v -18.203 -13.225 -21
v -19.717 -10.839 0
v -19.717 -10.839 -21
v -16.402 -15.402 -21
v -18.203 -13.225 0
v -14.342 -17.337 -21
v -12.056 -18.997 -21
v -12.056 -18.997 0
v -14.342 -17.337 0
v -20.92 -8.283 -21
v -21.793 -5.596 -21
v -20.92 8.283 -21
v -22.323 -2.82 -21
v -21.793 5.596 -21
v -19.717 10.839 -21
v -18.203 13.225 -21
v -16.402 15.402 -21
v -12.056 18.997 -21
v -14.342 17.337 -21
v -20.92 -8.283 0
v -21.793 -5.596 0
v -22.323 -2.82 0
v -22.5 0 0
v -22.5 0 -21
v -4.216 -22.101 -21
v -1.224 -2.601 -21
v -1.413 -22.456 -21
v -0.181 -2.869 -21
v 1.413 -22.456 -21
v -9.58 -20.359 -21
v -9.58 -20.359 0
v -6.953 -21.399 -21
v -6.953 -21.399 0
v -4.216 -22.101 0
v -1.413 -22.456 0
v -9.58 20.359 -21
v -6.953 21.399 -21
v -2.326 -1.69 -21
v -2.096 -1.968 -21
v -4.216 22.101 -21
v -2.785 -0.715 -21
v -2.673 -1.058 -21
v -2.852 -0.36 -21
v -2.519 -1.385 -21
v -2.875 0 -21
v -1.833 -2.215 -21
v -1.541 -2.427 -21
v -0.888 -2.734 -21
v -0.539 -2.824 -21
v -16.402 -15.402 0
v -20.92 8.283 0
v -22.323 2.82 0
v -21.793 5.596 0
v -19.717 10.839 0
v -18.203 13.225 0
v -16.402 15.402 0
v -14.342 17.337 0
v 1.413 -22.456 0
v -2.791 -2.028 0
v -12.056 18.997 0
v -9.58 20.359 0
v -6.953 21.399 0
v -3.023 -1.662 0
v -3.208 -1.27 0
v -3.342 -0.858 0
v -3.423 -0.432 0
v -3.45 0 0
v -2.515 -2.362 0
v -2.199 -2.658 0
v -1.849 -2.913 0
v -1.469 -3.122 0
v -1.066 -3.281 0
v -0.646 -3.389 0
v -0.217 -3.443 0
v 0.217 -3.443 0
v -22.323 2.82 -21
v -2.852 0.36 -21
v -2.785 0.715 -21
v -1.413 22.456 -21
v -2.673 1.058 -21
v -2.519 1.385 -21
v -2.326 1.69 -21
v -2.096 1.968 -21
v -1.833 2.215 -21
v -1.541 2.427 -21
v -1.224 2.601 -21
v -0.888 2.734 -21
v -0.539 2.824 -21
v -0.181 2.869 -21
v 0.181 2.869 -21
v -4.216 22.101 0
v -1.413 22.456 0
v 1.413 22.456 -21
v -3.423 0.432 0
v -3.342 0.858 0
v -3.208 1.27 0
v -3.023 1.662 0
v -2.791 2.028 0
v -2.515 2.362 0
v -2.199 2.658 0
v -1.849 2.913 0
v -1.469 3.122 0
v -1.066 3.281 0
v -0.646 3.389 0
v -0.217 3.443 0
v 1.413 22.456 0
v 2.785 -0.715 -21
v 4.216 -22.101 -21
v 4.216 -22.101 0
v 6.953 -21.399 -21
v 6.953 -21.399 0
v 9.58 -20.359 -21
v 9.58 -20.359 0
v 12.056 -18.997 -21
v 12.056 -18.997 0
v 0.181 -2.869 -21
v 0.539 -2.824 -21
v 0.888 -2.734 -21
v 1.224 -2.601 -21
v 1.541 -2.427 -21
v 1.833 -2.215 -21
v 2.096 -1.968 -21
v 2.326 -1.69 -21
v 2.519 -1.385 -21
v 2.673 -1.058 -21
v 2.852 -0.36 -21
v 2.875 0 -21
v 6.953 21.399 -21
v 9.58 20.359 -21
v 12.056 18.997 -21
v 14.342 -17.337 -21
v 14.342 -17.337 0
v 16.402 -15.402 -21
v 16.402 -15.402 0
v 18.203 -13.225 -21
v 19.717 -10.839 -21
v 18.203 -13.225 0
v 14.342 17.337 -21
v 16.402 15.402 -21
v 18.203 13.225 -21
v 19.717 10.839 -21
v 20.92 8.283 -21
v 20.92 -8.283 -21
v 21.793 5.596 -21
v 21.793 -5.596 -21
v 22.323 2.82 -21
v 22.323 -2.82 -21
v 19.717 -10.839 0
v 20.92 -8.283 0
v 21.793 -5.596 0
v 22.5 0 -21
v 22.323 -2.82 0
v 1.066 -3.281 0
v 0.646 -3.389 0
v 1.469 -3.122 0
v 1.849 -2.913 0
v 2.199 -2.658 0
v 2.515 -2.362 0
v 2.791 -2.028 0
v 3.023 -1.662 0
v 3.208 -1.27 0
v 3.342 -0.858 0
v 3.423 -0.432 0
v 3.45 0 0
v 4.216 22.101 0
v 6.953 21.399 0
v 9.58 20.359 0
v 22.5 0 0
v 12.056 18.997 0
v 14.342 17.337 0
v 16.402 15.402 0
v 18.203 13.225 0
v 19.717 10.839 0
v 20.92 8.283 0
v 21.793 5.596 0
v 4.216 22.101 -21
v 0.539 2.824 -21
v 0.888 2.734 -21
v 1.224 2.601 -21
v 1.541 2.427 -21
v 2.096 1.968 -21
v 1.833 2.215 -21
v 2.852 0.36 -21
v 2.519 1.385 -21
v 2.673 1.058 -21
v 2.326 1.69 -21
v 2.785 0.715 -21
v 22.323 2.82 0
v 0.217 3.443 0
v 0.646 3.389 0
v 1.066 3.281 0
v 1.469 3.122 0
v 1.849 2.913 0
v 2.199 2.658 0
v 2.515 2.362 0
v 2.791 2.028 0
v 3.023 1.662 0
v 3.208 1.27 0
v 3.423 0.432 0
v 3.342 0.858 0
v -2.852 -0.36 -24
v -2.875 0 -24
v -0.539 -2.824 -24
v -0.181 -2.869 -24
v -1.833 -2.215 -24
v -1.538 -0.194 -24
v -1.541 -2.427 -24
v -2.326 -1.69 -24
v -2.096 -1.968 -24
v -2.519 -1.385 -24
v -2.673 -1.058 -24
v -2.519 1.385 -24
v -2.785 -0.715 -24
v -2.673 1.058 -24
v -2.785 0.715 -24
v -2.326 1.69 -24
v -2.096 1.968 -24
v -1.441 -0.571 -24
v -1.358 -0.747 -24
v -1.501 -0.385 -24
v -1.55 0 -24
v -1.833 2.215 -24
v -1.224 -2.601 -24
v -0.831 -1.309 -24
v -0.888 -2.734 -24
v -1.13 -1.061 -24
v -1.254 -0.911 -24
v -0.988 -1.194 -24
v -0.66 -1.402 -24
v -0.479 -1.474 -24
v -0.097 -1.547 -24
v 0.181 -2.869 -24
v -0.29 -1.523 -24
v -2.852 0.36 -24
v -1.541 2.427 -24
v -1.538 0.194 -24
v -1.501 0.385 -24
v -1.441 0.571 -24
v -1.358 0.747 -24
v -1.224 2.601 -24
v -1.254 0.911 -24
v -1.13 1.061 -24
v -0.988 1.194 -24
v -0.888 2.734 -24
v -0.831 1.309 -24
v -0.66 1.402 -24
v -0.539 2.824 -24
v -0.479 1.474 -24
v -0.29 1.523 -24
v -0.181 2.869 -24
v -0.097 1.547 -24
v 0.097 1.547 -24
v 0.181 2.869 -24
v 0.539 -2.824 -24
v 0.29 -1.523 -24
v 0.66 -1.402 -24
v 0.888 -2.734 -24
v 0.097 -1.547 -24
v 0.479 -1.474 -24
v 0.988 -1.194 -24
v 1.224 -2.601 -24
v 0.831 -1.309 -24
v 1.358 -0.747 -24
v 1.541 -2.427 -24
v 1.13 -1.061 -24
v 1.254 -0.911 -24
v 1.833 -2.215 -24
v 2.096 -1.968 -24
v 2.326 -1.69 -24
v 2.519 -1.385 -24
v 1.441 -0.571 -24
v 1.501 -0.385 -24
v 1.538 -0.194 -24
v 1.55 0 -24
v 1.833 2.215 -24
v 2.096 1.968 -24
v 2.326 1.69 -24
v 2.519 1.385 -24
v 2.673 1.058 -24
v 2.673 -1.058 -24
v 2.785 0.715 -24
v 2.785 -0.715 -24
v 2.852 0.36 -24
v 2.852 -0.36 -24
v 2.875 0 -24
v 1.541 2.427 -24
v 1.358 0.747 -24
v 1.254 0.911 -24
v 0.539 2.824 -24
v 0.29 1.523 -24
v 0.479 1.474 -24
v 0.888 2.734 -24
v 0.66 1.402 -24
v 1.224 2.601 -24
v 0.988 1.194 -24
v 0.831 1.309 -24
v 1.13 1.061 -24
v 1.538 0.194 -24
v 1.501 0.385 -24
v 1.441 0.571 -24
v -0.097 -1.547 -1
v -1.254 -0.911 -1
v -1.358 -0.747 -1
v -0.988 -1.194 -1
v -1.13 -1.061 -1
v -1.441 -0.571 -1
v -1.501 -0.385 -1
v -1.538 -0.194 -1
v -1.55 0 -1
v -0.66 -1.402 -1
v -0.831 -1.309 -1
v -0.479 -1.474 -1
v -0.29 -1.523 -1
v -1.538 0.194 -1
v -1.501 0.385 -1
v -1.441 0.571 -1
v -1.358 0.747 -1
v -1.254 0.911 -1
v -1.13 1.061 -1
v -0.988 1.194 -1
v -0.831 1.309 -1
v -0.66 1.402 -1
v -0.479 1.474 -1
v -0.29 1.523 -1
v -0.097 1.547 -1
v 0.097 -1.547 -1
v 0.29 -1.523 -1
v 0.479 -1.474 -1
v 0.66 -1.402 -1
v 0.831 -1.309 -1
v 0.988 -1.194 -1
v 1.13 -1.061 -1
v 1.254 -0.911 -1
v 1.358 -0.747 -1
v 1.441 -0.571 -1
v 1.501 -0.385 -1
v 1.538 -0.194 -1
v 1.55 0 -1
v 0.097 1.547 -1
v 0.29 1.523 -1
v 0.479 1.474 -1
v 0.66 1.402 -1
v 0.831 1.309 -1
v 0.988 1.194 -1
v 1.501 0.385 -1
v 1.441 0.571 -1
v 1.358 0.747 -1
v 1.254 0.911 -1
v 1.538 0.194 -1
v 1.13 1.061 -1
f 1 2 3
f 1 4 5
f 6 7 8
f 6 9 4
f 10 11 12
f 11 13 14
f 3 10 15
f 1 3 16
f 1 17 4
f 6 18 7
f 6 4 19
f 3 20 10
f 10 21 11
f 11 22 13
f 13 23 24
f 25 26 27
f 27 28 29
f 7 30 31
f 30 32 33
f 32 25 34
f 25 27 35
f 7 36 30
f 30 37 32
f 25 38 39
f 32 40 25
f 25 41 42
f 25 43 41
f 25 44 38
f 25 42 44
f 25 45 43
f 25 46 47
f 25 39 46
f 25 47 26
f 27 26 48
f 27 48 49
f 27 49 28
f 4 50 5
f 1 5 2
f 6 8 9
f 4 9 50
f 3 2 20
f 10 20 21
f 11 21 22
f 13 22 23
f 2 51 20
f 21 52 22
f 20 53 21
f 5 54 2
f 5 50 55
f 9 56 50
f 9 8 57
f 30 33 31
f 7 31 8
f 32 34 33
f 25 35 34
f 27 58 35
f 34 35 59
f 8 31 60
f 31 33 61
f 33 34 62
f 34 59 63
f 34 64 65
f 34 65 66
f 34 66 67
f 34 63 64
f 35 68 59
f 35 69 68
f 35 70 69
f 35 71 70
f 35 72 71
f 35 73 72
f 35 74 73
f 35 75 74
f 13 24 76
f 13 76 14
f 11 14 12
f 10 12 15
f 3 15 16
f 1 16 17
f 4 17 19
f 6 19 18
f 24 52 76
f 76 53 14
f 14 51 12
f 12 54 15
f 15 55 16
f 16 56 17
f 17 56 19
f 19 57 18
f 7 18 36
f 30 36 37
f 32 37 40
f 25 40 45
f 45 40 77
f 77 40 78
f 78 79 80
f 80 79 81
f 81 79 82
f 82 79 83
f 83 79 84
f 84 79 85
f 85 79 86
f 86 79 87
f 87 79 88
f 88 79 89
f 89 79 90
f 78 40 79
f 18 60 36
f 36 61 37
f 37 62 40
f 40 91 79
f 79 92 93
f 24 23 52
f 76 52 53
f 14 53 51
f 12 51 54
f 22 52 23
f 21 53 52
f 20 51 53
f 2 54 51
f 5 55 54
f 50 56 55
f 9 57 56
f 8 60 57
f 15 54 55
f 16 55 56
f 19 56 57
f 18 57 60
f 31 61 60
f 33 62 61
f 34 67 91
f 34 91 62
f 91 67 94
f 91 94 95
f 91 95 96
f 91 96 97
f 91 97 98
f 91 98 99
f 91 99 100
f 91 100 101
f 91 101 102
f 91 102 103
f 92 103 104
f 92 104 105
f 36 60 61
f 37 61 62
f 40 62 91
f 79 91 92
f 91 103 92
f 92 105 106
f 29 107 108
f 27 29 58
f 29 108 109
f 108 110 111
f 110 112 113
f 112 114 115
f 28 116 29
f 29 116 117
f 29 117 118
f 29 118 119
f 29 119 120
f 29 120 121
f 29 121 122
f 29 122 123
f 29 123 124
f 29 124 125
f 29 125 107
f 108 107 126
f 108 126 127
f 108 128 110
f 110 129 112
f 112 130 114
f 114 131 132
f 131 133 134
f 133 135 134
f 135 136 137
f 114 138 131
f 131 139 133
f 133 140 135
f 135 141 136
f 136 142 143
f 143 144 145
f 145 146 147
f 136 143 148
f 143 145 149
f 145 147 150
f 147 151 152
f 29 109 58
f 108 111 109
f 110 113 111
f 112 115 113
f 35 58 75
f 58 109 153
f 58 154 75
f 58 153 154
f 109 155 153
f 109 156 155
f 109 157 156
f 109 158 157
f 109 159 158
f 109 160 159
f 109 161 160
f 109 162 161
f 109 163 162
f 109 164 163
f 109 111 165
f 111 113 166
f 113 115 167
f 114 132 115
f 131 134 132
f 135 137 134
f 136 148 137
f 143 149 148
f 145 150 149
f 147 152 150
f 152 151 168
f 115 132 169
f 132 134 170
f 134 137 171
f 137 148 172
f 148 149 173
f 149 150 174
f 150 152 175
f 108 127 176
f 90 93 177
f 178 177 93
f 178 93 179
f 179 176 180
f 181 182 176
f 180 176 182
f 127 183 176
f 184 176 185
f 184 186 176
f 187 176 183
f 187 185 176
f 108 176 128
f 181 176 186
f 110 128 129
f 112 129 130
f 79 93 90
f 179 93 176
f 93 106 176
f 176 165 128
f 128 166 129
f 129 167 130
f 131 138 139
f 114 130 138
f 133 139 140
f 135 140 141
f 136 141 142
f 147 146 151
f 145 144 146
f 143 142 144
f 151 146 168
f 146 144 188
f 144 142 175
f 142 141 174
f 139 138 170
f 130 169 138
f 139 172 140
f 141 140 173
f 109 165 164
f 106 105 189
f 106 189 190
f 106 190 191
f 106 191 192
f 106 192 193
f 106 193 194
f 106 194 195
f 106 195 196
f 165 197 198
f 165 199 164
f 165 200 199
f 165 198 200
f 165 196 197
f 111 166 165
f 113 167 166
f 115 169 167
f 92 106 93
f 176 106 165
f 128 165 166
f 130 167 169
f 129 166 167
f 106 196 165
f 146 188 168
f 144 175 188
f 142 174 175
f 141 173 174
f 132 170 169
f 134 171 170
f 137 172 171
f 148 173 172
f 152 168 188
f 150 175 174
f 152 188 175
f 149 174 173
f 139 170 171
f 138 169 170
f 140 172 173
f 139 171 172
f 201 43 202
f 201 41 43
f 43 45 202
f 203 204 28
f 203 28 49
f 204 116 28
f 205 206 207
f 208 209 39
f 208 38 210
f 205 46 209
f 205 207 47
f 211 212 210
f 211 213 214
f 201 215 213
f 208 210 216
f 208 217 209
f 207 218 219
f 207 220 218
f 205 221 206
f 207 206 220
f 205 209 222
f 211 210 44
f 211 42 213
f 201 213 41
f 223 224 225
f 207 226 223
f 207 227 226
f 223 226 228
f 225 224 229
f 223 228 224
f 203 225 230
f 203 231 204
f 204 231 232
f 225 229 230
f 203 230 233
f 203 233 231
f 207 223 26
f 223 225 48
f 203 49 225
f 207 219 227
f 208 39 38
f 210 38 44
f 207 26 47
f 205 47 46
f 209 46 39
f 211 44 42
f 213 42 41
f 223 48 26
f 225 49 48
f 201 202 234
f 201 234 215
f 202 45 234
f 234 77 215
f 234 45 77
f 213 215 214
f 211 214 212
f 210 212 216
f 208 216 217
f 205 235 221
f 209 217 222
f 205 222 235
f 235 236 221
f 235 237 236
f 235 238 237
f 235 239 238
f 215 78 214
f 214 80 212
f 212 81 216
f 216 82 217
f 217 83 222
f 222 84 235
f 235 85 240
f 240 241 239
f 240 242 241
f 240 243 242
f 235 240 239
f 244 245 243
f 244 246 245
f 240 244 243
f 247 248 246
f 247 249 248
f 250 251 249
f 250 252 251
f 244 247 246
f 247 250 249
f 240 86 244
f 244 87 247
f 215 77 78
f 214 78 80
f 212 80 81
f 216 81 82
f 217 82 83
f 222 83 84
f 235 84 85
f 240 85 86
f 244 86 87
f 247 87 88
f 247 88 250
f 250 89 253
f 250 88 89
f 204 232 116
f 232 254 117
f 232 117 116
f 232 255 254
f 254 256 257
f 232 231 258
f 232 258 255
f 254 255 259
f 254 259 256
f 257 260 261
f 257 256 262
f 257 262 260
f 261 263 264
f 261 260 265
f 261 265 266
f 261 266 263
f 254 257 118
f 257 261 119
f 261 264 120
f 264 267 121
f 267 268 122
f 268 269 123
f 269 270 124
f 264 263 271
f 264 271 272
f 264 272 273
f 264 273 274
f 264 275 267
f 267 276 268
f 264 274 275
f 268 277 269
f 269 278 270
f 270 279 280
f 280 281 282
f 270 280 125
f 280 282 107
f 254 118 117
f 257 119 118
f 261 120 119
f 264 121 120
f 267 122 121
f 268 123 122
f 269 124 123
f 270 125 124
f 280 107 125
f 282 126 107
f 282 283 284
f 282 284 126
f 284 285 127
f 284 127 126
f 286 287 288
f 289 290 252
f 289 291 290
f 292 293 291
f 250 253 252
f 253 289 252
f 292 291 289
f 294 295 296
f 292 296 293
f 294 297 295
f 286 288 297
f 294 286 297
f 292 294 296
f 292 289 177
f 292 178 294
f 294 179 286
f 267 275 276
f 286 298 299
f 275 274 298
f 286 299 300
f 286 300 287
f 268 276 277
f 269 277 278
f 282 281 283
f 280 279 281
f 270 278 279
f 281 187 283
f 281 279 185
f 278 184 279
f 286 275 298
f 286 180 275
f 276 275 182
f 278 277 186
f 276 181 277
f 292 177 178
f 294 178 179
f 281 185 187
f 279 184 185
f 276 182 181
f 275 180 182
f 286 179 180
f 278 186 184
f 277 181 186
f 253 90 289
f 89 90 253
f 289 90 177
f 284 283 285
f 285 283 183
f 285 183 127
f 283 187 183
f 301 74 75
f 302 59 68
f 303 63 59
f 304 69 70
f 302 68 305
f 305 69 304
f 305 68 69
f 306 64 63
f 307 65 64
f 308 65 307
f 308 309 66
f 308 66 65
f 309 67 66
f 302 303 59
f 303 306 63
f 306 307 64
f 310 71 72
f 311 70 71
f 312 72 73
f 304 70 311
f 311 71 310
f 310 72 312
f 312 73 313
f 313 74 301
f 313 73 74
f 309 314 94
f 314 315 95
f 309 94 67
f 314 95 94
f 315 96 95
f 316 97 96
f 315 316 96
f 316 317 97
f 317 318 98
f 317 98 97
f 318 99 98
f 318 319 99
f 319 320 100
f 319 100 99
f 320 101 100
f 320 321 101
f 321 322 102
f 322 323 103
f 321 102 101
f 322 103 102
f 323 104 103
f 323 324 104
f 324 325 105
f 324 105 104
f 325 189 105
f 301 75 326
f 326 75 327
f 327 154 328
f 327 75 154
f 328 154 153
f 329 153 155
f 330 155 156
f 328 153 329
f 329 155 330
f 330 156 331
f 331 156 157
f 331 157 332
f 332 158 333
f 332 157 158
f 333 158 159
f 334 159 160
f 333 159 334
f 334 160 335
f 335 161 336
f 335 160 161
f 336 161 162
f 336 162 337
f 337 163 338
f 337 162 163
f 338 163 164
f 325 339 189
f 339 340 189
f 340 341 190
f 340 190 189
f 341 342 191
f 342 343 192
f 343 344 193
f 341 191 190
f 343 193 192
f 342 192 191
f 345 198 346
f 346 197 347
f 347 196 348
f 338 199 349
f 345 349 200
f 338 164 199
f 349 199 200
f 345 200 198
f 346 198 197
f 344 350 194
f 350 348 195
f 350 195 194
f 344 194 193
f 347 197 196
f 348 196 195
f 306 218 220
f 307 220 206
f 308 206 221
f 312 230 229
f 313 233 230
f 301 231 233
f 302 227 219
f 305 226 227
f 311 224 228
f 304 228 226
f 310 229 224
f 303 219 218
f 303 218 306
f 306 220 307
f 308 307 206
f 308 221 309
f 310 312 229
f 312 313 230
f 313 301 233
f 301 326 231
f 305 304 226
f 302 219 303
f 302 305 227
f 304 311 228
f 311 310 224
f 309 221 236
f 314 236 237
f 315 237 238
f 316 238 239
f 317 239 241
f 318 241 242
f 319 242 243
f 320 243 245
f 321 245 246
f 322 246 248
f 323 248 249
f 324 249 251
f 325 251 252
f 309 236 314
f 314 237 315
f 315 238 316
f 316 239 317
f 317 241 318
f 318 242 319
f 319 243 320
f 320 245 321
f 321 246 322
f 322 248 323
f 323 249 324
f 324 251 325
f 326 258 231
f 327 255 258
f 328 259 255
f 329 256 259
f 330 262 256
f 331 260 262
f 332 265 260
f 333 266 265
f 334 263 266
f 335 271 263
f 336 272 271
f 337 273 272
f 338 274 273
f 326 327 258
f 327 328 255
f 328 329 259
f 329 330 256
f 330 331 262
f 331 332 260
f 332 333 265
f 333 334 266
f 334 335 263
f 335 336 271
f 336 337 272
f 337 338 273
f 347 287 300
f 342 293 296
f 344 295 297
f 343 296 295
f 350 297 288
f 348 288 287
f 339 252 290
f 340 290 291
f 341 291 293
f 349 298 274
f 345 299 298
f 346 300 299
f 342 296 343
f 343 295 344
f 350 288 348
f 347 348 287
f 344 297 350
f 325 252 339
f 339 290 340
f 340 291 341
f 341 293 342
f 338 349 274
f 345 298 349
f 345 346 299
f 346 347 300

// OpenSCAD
$fn = 50;


difference() {
	union() {
		translate(v = [0, 0, -21.0000000000]) {
			cylinder(h = 21, r = 22.5000000000);
		}
		#translate(v = [0, 0, -24.0000000000]) {
			cylinder(h = 24, r = 2.8750000000);
		}
	}
	union() {
		translate(v = [0, 0, 0]) {
			rotate(a = [0, 0, 0]) {
				difference() {
					union() {
						translate(v = [0, 0, -24.0000000000]) {
							cylinder(h = 24, r = 1.2500000000);
						}
						translate(v = [0, 0, -1.0000000000]) {
							cylinder(h = 1.0000000000, r1 = 1.5500000000, r2 = 3.4500000000);
						}
						translate(v = [0, 0, -24.0000000000]) {
							cylinder(h = 24, r = 1.5500000000);
						}
						translate(v = [0, 0, -24.0000000000]) {
							cylinder(h = 24, r = 1.2500000000);
						}
					}
					union();
				}
			}
		}
	}
}
